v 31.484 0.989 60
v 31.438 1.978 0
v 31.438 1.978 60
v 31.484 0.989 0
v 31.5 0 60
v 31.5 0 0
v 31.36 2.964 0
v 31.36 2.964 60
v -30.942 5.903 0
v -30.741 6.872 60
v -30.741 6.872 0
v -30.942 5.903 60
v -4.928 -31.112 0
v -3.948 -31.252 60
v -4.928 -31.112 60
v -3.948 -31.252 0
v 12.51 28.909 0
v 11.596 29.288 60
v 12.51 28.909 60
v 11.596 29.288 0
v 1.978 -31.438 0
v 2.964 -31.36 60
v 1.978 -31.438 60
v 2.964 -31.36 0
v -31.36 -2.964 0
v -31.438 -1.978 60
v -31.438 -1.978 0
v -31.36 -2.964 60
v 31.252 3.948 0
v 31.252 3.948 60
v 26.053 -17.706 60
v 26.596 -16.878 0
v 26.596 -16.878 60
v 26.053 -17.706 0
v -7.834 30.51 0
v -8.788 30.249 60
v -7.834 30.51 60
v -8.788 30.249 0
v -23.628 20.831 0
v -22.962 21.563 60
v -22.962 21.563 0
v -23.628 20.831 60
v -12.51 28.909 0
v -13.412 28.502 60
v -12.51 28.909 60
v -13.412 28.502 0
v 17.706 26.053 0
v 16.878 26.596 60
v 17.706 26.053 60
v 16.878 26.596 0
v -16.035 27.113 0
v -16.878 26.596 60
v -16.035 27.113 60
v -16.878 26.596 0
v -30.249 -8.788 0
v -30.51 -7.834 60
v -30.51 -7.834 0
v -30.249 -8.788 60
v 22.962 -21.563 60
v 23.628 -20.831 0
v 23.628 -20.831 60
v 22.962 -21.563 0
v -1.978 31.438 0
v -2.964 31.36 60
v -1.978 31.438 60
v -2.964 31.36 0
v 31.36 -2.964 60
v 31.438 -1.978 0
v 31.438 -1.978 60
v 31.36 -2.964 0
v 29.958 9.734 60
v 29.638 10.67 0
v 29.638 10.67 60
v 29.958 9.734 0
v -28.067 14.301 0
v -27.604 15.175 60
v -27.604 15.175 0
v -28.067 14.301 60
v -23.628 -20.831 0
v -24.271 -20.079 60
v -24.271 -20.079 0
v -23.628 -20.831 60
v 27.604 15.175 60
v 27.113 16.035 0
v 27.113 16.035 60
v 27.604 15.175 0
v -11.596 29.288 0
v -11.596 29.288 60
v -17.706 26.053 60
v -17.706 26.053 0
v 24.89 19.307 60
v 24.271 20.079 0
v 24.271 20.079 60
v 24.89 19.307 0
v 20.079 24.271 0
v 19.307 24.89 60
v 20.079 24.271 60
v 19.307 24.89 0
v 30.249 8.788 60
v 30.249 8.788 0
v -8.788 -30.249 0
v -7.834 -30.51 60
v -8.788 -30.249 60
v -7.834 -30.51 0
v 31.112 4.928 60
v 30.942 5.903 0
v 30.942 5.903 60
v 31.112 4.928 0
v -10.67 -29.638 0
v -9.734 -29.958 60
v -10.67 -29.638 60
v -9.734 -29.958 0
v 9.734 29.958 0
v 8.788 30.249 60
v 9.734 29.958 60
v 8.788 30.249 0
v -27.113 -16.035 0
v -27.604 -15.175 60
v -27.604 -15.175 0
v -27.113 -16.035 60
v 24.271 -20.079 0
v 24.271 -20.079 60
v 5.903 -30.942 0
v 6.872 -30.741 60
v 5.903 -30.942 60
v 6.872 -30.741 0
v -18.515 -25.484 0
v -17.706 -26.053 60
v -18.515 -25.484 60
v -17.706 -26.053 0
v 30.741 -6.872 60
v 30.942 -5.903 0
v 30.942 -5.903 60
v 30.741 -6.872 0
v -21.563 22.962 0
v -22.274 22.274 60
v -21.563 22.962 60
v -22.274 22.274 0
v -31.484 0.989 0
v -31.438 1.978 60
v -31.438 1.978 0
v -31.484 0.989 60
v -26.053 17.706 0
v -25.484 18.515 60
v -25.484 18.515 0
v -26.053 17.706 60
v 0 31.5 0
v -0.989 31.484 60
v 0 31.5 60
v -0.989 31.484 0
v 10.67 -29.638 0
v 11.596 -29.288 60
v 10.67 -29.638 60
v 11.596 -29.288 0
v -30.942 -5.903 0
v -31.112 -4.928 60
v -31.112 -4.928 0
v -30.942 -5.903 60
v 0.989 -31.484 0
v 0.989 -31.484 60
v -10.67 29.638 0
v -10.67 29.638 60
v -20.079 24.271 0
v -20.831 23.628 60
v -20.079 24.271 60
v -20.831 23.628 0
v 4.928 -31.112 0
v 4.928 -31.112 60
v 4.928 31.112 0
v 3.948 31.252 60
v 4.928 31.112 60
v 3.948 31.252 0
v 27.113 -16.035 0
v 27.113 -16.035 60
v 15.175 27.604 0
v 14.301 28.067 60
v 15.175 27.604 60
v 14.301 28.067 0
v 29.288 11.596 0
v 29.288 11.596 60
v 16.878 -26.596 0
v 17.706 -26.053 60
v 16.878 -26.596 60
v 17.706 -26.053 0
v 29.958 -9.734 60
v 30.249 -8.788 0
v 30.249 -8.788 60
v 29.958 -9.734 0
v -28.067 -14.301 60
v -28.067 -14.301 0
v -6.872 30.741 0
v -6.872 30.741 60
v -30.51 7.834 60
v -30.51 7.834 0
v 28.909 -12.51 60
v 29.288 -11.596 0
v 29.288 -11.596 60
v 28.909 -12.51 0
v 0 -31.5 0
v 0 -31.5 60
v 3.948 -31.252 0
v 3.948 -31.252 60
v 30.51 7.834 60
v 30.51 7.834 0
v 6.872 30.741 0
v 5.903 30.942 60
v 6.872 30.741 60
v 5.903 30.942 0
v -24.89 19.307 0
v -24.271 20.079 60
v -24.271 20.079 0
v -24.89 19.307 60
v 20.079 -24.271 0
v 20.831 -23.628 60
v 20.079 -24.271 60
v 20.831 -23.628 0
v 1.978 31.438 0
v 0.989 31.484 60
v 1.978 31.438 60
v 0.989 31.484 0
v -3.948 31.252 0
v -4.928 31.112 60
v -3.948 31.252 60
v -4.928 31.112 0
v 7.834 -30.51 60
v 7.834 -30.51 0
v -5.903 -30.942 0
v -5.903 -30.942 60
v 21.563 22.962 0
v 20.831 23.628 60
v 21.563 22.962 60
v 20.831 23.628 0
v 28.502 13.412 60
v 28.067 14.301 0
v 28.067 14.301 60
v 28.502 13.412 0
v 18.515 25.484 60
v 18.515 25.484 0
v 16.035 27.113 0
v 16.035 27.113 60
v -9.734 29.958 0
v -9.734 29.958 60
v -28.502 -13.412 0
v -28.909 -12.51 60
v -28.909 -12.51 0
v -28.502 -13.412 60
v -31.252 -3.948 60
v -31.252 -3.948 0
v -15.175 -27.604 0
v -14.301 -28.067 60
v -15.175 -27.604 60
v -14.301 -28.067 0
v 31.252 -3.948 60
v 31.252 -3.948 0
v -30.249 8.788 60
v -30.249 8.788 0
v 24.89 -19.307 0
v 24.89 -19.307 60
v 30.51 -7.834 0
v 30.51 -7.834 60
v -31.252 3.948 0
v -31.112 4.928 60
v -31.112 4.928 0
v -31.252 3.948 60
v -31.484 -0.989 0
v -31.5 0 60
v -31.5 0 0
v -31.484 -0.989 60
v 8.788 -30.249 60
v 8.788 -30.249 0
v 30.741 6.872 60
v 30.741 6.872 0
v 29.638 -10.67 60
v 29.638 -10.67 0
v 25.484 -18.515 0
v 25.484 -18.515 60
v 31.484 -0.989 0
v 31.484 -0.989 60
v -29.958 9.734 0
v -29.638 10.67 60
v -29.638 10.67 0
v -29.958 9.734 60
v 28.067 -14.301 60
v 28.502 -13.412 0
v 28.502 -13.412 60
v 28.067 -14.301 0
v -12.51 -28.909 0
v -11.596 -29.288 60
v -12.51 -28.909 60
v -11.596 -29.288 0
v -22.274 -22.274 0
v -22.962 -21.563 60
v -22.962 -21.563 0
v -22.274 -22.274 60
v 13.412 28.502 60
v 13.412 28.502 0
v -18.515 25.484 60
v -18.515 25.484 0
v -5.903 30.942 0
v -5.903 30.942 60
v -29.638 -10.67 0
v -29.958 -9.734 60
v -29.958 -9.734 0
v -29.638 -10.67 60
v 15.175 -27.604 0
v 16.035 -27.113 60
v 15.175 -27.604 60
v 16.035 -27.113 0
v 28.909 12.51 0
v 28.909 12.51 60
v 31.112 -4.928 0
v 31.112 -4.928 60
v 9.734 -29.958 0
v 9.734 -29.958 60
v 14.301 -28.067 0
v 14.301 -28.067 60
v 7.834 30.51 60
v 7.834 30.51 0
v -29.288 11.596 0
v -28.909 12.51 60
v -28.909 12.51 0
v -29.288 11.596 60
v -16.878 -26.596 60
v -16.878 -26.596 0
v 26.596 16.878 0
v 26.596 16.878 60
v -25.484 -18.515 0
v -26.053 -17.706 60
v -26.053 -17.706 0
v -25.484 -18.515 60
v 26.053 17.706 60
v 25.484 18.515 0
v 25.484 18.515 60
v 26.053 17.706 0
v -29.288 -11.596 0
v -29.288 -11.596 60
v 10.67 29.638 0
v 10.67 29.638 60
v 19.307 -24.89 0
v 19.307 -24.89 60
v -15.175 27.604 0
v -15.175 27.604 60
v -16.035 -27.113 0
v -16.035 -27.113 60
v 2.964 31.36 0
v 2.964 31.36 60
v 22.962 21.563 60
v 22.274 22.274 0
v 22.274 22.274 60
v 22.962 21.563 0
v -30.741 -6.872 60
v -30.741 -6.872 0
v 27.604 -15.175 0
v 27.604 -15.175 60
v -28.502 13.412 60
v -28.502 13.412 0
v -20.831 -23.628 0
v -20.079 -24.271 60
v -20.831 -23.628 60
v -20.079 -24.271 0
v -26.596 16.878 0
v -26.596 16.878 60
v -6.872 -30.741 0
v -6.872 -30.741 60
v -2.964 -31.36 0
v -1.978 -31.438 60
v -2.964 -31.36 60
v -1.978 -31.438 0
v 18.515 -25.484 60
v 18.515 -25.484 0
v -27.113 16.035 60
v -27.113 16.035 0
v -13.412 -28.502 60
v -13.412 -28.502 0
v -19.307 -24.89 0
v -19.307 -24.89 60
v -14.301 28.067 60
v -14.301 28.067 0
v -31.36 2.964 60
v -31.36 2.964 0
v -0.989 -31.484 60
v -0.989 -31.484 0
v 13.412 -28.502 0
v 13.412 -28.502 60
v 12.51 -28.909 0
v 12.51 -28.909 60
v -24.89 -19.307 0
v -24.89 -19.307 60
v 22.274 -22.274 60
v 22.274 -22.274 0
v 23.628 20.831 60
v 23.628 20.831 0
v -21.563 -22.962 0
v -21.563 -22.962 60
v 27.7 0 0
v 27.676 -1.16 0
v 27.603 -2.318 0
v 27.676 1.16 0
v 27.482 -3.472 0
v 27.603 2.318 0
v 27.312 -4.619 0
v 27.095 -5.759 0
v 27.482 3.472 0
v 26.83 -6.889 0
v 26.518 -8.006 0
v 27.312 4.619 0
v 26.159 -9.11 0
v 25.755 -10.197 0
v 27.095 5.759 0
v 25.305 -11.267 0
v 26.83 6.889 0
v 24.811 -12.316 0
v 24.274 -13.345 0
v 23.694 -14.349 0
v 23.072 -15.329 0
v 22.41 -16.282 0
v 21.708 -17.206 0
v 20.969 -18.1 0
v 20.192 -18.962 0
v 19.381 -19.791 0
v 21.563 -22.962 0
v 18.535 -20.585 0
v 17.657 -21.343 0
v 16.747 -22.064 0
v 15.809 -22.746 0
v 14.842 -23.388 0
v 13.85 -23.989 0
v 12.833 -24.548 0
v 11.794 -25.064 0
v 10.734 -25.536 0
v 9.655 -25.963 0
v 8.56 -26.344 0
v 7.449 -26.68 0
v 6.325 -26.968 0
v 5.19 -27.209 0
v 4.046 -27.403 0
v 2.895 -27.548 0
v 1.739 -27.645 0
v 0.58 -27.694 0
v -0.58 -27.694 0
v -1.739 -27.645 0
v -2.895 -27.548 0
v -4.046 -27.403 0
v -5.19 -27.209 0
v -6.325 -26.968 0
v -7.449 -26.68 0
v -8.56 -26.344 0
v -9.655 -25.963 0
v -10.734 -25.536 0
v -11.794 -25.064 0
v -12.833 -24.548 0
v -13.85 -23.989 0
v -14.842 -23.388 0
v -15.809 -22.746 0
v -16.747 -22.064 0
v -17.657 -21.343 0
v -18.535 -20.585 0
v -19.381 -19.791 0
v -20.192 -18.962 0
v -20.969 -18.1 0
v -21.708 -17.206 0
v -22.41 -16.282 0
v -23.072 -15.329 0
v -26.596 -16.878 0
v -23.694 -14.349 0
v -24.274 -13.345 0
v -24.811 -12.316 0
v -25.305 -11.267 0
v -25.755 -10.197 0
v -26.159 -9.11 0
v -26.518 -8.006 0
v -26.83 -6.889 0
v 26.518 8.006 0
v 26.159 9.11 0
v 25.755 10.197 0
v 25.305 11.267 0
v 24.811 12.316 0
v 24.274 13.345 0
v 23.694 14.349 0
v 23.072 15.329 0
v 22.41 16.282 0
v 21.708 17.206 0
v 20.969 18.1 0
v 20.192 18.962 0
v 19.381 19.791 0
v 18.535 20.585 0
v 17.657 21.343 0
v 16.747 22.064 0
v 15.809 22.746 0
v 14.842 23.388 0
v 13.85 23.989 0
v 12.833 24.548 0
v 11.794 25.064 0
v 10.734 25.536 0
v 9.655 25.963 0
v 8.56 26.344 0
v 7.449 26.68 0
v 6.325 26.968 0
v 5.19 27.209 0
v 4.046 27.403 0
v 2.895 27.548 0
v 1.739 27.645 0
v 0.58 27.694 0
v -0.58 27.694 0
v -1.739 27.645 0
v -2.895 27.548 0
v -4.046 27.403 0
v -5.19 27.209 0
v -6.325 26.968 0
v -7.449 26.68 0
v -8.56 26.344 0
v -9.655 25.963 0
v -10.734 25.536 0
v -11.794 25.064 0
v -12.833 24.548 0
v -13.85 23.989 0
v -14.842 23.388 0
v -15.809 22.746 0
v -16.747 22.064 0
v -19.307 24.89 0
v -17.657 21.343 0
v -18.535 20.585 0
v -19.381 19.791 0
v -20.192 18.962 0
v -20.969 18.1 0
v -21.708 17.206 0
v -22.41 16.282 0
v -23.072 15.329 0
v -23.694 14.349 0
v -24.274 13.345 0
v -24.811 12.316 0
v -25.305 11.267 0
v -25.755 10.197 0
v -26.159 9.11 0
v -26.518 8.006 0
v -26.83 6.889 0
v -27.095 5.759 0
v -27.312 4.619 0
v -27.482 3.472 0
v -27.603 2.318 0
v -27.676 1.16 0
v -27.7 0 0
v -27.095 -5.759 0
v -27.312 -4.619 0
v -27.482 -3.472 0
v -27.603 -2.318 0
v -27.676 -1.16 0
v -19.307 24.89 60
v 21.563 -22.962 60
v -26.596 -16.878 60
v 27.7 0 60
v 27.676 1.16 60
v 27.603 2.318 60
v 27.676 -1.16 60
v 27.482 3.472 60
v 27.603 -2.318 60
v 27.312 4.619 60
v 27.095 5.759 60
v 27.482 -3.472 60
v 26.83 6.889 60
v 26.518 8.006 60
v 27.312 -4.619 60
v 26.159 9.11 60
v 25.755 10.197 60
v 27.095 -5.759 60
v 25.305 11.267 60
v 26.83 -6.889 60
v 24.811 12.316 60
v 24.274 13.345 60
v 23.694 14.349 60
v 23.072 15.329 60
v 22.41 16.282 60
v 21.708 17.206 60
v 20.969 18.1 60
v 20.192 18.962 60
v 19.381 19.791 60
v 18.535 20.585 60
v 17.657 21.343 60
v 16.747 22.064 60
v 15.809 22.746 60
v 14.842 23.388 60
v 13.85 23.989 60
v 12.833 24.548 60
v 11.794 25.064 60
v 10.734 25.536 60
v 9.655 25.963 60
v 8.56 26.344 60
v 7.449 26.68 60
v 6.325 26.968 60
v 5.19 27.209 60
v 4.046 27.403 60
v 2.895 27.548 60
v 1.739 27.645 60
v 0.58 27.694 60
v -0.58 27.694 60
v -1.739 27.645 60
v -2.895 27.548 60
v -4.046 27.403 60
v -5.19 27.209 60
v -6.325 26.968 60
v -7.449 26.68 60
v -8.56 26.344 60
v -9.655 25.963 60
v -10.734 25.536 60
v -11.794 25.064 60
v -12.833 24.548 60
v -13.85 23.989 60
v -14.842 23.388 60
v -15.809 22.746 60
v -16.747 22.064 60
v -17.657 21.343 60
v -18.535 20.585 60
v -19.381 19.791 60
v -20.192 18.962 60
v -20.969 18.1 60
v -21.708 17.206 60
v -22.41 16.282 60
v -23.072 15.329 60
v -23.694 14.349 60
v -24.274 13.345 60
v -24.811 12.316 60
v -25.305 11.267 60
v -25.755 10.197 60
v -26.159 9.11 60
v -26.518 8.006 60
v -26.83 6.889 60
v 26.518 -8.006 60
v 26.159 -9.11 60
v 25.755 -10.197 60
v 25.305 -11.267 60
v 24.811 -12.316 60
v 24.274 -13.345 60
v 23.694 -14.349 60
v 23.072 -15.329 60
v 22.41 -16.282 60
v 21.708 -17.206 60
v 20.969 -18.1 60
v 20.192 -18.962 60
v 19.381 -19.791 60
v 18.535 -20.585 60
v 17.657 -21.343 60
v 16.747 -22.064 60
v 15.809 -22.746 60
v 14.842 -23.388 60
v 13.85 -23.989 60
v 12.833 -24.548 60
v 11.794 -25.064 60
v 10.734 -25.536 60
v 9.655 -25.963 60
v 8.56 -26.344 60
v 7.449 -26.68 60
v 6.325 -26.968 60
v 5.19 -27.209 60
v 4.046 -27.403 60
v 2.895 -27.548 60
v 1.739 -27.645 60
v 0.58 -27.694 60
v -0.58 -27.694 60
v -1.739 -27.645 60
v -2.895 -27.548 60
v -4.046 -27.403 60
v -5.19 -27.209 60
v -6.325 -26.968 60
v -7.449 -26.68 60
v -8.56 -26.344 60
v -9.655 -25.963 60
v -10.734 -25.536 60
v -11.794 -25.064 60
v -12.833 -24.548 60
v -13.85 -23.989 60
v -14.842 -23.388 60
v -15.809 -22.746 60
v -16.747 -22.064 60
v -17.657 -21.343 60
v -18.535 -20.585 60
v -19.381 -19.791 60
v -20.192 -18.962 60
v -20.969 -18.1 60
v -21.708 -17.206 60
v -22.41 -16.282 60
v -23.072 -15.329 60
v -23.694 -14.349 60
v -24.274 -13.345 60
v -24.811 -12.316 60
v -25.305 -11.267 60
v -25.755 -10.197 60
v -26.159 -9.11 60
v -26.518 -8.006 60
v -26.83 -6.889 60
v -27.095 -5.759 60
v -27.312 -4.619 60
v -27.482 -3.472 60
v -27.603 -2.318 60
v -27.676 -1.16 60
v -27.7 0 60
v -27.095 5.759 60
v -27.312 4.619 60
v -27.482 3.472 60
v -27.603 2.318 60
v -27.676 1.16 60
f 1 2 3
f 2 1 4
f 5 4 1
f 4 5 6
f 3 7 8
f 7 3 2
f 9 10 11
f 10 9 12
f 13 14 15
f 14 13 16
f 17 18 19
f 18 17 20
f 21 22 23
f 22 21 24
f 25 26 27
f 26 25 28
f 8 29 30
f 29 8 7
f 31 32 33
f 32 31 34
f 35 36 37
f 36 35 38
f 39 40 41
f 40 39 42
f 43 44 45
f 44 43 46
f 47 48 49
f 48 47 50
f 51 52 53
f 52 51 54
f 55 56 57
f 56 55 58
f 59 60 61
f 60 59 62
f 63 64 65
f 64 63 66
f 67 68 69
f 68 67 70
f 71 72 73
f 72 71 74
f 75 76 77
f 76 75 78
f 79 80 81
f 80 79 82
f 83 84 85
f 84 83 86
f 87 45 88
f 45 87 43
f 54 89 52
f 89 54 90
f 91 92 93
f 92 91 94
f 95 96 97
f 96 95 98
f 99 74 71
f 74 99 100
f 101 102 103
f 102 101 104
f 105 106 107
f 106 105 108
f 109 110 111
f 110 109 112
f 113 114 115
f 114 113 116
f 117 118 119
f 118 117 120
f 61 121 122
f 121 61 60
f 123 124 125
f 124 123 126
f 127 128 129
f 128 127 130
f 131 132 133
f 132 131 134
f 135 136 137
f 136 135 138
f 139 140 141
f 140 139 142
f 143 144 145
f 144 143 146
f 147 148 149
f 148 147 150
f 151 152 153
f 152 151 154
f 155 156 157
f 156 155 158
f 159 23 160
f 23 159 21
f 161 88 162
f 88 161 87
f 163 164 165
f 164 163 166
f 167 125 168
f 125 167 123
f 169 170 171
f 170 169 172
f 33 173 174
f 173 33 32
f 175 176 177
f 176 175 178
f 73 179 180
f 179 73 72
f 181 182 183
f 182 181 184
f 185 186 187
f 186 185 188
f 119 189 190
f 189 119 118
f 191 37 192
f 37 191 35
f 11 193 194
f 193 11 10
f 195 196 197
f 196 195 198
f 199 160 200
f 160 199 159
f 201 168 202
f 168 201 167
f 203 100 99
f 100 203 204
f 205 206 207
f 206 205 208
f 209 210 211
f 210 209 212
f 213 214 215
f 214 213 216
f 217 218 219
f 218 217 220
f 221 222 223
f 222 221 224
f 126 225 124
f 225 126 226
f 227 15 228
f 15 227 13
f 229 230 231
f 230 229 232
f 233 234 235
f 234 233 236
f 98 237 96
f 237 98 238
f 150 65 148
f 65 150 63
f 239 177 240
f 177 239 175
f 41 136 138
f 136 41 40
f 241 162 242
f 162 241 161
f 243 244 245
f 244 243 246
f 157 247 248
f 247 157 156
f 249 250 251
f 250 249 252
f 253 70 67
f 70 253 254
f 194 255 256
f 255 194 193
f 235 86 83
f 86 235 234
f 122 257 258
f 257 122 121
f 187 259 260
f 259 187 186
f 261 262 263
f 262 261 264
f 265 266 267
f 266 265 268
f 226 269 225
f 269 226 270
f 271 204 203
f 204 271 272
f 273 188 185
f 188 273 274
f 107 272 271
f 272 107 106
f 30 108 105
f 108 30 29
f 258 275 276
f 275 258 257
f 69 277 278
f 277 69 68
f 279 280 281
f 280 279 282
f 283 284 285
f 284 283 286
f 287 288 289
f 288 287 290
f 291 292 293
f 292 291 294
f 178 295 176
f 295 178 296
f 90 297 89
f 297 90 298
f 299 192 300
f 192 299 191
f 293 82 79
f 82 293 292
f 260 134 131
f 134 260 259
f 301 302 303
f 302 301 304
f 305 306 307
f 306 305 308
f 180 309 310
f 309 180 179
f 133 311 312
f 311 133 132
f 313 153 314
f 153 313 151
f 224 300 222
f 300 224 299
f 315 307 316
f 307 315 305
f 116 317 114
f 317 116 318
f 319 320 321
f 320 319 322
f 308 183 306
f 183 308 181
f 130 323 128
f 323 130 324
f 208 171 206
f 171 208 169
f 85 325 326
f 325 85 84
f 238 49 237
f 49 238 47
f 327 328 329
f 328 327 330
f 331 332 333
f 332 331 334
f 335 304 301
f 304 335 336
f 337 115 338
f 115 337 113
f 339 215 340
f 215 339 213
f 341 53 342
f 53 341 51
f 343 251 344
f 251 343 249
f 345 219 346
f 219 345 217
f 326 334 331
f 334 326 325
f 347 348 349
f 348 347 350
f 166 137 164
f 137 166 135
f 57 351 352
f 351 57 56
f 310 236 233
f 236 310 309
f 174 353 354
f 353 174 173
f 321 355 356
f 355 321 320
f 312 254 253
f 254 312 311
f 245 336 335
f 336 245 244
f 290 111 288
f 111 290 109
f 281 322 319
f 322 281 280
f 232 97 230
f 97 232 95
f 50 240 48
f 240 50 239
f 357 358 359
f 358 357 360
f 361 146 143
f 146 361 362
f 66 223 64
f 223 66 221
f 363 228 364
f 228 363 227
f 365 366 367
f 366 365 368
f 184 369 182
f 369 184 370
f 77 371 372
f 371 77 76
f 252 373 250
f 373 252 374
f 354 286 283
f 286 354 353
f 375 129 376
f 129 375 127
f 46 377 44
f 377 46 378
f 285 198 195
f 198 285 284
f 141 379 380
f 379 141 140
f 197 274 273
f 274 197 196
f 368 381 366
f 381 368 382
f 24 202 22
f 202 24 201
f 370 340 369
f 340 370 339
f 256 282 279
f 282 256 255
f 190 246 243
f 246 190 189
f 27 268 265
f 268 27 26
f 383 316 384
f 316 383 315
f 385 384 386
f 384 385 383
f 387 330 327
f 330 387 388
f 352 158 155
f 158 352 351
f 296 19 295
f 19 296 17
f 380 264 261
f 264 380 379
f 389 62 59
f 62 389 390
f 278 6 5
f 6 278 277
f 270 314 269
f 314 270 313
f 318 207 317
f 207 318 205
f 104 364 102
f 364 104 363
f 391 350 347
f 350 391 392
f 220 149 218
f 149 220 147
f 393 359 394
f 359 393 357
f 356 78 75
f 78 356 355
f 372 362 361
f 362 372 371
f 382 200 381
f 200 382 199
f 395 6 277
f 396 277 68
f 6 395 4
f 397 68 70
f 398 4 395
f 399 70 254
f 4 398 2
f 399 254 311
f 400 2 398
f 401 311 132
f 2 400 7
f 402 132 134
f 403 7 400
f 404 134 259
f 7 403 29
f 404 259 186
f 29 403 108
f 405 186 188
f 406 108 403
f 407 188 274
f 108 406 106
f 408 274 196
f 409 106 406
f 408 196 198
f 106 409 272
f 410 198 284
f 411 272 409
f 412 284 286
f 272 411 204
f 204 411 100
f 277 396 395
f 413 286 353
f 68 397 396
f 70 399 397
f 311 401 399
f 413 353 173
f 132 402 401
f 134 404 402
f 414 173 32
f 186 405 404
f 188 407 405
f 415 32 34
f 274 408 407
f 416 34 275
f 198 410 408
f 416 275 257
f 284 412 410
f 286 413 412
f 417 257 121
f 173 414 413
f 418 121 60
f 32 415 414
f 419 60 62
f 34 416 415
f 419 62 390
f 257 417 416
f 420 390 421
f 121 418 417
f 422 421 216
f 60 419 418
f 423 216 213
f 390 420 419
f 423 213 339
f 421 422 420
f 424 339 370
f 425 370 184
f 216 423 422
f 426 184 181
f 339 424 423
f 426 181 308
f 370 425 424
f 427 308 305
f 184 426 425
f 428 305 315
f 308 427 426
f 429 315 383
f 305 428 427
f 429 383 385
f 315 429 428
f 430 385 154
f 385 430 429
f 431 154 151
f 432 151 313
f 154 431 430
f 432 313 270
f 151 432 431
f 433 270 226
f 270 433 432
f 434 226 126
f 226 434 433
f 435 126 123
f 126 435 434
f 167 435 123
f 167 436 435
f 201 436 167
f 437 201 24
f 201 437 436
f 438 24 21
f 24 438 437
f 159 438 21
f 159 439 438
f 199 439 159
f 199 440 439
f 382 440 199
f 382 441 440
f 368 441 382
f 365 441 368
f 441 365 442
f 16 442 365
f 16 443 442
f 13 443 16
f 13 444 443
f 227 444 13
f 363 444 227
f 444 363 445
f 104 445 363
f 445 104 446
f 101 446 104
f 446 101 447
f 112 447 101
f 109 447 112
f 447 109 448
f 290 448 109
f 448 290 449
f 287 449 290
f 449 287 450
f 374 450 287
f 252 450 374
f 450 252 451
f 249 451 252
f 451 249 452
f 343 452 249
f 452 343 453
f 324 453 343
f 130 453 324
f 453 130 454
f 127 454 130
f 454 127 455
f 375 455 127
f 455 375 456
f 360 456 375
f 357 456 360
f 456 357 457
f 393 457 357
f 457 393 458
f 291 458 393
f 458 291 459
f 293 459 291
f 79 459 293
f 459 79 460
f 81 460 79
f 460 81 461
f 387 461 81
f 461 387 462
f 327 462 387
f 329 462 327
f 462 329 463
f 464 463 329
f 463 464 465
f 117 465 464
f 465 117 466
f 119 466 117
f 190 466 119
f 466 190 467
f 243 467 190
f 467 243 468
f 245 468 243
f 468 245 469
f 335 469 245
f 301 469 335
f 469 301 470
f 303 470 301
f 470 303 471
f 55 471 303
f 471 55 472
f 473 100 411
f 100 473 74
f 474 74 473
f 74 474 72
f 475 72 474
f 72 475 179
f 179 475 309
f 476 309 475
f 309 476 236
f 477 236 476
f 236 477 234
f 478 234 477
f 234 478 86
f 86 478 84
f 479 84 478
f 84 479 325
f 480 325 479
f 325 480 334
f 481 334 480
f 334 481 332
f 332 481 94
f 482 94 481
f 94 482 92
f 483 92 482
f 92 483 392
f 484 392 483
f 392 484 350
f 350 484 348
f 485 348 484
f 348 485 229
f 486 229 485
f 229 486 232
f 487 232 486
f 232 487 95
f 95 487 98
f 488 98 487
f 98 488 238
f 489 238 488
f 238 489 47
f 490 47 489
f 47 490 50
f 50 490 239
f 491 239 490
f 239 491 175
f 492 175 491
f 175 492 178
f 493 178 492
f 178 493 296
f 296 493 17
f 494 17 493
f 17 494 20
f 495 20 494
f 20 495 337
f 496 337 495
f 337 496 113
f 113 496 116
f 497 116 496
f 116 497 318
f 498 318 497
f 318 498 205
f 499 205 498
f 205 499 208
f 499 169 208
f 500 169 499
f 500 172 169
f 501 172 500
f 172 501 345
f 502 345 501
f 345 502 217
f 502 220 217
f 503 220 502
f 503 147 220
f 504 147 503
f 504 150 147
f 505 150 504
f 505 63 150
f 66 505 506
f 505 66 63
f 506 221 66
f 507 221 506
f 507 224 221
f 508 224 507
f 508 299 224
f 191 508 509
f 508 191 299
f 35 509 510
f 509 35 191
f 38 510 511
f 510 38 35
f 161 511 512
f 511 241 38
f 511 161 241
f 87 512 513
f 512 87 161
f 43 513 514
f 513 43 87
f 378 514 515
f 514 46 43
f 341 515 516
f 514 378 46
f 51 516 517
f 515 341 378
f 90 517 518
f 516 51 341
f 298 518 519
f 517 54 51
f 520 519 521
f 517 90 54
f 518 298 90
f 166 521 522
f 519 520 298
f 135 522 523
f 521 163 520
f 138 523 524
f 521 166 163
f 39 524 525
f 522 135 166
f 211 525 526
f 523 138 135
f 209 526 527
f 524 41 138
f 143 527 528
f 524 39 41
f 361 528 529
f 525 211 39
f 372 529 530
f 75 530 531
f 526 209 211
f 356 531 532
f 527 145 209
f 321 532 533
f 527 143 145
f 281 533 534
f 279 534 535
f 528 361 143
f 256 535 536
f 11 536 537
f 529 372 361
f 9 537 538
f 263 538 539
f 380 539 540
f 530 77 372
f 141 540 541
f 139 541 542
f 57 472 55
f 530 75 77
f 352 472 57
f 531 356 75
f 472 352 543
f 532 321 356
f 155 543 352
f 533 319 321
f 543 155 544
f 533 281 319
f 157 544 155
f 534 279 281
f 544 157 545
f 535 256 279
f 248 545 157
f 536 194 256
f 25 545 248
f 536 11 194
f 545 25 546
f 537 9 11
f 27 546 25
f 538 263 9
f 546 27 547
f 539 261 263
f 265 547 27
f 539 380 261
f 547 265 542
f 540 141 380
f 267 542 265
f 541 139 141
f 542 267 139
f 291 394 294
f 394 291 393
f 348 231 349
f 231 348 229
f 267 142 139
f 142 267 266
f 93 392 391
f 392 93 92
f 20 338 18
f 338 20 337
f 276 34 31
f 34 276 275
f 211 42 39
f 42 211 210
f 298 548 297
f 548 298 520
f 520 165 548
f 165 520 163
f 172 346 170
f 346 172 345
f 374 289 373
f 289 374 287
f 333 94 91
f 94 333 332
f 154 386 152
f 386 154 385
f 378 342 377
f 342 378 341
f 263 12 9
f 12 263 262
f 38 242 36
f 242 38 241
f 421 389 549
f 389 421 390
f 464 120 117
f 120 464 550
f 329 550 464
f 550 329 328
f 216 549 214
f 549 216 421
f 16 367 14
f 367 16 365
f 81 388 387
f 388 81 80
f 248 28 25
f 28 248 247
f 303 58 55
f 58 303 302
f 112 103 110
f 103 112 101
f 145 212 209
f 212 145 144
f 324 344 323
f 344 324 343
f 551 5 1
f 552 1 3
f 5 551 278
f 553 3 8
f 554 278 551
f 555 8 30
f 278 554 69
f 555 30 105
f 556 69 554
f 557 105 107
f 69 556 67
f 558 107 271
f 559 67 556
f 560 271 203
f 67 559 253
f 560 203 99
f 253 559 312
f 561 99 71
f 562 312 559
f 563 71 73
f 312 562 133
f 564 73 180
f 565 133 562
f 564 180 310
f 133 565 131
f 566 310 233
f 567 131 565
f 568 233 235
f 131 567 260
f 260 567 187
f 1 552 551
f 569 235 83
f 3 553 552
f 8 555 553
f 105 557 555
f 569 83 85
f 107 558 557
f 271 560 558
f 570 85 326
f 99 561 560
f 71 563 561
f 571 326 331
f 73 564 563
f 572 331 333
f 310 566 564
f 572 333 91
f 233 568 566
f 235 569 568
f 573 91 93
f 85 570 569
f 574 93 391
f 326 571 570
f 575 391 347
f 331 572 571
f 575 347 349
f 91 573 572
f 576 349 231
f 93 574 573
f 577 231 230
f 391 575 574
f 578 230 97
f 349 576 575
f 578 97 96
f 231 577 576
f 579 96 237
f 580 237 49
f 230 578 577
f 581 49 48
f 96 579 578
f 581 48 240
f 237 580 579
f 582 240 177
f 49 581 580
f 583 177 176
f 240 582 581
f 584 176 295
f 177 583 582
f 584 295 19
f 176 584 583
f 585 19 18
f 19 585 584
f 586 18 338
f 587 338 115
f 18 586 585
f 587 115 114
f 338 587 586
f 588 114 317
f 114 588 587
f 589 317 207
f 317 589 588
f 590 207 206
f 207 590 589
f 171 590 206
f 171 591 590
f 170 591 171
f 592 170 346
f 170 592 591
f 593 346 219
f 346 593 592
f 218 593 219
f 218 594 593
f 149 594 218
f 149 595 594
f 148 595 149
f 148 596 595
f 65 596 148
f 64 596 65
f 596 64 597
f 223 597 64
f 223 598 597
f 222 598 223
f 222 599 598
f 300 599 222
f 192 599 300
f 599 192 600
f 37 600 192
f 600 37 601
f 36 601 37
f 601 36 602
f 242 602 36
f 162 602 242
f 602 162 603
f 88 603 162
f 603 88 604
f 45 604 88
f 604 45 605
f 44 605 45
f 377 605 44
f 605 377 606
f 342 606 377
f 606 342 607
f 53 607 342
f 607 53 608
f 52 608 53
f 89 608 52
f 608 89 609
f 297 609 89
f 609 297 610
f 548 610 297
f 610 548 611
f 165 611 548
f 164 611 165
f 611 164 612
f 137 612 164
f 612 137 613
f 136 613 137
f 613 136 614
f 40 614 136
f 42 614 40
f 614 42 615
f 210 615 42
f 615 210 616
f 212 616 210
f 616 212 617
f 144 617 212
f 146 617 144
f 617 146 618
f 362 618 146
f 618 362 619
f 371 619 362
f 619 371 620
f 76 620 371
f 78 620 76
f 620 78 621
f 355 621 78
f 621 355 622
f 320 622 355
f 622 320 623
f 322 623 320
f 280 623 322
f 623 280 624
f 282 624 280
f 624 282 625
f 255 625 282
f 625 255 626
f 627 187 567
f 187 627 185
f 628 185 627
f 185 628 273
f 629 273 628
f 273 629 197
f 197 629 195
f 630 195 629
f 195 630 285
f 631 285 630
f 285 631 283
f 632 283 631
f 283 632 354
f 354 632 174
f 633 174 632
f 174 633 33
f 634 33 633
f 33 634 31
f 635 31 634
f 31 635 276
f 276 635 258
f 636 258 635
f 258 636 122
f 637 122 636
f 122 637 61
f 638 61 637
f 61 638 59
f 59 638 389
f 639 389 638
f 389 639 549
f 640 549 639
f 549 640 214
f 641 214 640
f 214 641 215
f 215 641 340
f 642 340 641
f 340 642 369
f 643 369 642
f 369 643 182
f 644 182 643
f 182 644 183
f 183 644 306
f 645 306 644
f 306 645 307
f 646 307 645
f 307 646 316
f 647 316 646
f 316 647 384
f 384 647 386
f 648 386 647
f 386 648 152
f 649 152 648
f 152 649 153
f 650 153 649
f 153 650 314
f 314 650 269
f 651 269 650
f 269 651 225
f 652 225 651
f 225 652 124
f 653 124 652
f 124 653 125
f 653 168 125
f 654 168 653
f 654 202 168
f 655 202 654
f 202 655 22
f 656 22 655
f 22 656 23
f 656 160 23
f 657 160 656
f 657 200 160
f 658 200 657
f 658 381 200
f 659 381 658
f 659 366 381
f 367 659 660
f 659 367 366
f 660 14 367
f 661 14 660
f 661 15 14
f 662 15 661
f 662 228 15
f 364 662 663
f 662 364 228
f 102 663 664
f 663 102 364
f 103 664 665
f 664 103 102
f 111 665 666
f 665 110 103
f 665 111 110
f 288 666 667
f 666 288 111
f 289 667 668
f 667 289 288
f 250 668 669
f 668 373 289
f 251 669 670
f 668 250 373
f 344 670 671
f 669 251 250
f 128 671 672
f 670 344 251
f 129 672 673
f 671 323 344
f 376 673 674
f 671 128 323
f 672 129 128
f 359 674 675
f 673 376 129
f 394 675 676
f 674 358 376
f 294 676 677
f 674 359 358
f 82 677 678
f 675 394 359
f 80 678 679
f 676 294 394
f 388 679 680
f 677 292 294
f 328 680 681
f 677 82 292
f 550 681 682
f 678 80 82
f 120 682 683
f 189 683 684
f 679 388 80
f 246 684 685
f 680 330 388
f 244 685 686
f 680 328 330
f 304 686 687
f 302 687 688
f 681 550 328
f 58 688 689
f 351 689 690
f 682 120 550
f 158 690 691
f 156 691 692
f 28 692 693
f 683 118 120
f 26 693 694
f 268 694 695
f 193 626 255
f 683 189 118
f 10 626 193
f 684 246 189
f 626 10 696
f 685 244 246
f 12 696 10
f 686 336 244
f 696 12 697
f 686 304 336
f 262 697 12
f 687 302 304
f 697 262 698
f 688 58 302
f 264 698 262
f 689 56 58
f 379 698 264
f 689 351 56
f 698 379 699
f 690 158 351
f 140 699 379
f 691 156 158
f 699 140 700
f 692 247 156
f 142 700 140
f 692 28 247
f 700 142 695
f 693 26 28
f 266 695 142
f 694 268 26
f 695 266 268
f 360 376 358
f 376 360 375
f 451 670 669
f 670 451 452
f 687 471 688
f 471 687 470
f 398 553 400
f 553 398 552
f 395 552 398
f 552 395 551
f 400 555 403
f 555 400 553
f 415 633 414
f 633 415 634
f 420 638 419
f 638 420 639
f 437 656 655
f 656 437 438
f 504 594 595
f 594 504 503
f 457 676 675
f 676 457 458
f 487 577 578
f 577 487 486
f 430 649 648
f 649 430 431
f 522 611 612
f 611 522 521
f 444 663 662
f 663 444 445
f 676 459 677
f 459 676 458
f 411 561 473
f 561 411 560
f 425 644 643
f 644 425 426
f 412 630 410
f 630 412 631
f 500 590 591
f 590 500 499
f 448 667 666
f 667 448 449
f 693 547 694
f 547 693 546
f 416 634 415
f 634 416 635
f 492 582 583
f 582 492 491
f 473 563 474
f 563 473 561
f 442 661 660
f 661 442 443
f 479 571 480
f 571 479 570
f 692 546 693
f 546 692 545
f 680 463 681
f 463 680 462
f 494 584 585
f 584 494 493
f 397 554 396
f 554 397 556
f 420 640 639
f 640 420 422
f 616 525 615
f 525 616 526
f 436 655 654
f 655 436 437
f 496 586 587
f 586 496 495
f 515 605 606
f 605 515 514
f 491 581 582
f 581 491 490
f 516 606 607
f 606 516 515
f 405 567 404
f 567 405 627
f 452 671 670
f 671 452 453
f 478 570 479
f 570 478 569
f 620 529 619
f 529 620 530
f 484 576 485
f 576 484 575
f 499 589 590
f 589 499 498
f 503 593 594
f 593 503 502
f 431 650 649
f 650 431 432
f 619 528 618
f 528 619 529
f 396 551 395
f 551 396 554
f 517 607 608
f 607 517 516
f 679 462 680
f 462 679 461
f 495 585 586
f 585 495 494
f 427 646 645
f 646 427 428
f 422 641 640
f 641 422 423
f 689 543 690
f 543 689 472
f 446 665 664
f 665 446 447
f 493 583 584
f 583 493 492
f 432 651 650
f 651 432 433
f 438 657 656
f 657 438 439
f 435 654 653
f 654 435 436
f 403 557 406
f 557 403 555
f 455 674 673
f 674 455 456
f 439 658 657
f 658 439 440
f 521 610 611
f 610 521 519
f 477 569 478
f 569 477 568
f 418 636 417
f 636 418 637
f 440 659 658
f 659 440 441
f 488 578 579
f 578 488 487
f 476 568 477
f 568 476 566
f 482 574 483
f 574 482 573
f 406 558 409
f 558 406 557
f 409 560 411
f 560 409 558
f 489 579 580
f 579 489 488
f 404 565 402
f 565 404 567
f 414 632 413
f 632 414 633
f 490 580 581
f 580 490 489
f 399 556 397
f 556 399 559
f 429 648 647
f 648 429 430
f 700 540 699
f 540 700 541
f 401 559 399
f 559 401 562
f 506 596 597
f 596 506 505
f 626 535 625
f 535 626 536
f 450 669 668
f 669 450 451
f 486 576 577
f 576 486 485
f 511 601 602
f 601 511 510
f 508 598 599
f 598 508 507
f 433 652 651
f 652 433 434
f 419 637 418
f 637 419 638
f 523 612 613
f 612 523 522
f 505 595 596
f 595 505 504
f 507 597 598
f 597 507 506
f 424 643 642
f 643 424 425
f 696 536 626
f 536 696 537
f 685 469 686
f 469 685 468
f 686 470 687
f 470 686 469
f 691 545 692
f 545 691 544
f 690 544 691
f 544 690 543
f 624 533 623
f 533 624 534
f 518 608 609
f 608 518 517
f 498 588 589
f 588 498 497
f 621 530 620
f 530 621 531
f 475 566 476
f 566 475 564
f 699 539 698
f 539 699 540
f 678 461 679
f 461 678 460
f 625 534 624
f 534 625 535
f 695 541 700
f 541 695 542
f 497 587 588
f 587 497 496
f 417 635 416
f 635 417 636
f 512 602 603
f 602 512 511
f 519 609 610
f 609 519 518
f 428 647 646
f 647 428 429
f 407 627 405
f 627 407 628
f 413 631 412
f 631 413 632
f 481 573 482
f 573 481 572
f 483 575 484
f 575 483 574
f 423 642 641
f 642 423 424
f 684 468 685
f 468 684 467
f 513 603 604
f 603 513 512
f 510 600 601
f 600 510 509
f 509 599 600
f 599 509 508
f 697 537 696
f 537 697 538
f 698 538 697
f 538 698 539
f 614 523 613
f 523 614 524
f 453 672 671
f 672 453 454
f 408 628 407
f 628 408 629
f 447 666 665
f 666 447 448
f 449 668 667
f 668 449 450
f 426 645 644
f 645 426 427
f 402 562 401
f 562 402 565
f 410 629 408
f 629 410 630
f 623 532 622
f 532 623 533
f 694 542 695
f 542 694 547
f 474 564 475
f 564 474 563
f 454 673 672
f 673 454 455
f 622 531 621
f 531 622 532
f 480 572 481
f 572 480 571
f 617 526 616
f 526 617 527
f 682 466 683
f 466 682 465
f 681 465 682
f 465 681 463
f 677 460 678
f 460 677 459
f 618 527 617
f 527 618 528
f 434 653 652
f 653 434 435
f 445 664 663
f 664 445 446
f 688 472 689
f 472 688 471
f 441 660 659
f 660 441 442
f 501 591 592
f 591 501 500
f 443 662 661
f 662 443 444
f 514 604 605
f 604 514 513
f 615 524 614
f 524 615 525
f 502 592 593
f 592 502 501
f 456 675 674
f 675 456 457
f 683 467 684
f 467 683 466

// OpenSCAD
// file: ../utils/spool_core_sleeve.scad
/*
//--------------------------------------------------------------
//  Core‑Sleeve Spool Adapter  ✧  v1.1  (CC0‑1.0 / public domain)
//  Library module for parametric spool-core sleeves.
//  Example usage:
//      use <../utils/spool_core_sleeve.scad>;
//      spool_core_sleeve(inner_id=55, target_od=63, target_od_end=64,
//                        length=60, clearance=0.20);
//
//  Parameters:
//    inner_id   — measured bore ID (mm), e.g. 55 (≈AMS axle)
//    target_od      — outer diameter at z=0 (mm), e.g. 63 (Sunlu spool)
//    target_od_end  — outer diameter at z=length (mm); defaults to target_od
//    length         — axial length (mm), e.g. 60
//    clearance  — extra diameter added to bore (total), default 0.20
//    $fn_outer  — circle resolution for outer cylinder
//    $fn_inner  — circle resolution for inner bore
//
//  Notes:
//  • "clearance" is applied to the *diameter* of the bore (2× radial).
//  • Echoes computed wall thickness so test scripts can sanity-check values.
//--------------------------------------------------------------
*/

module spool_core_sleeve(
    inner_id      = 55,
    target_od     = 63,
    target_od_end = undef,
    length        = 60,
    clearance     = 0.20,
    $fn_outer     = 200,
    $fn_inner     = 150
) {
    target_od_end = is_undef(target_od_end) ? target_od : target_od_end;

    // Basic parameter validation
    assert(
        min(target_od, target_od_end) > inner_id + 2 * clearance,
        str("invalid dims: outer diameters (", target_od, ", ", target_od_end,
            ") must exceed inner_id + 2*clearance (",
            inner_id + 2 * clearance, ")")
    );

    wall_start = (target_od - inner_id) / 2;
    wall_end   = (target_od_end - inner_id) / 2;
    echo(str("Radial wall thickness: ", wall_start, " mm -> ",
             wall_end, " mm"));

    difference() {
        // OUTER – linearly interpolate between diameters
        cylinder(d1 = target_od, d2 = target_od_end, h = length, $fn = $fn_outer);
        // BORE — extended ±1mm to avoid z-fusing
        translate([0, 0, -1])
            cylinder(
                d = inner_id + 2 * clearance, h = length + 2, $fn = $fn_inner
            );
    }
}

// Optional named presets (extend as you collect measurements)
function _spool_core_sleeve_preset(preset) =
    (preset == "sunlu55_to63_len60") ? [55, 63, 64, 60, 0.20] :
    (preset == "sunlu55_to63cyl_len60") ? [55, 63, 63, 60, 0.20] :
    undef;

module spool_core_sleeve_preset(
    preset = "sunlu55_to63_len60", $fn_outer = 200, $fn_inner = 150
) {
    p = _spool_core_sleeve_preset(preset);
    assert(p != undef, str("unknown preset: ", preset));
    spool_core_sleeve(
        inner_id      = p[0],
        target_od     = p[1],
        target_od_end = p[2],
        length        = p[3],
        clearance     = p[4],
        $fn_outer     = $fn_outer,
        $fn_inner     = $fn_inner
    );
}

// End of library
// main file
use <../utils/spool_core_sleeve.scad>;

spool_core_sleeve_preset("sunlu55_to63cyl_len60");
